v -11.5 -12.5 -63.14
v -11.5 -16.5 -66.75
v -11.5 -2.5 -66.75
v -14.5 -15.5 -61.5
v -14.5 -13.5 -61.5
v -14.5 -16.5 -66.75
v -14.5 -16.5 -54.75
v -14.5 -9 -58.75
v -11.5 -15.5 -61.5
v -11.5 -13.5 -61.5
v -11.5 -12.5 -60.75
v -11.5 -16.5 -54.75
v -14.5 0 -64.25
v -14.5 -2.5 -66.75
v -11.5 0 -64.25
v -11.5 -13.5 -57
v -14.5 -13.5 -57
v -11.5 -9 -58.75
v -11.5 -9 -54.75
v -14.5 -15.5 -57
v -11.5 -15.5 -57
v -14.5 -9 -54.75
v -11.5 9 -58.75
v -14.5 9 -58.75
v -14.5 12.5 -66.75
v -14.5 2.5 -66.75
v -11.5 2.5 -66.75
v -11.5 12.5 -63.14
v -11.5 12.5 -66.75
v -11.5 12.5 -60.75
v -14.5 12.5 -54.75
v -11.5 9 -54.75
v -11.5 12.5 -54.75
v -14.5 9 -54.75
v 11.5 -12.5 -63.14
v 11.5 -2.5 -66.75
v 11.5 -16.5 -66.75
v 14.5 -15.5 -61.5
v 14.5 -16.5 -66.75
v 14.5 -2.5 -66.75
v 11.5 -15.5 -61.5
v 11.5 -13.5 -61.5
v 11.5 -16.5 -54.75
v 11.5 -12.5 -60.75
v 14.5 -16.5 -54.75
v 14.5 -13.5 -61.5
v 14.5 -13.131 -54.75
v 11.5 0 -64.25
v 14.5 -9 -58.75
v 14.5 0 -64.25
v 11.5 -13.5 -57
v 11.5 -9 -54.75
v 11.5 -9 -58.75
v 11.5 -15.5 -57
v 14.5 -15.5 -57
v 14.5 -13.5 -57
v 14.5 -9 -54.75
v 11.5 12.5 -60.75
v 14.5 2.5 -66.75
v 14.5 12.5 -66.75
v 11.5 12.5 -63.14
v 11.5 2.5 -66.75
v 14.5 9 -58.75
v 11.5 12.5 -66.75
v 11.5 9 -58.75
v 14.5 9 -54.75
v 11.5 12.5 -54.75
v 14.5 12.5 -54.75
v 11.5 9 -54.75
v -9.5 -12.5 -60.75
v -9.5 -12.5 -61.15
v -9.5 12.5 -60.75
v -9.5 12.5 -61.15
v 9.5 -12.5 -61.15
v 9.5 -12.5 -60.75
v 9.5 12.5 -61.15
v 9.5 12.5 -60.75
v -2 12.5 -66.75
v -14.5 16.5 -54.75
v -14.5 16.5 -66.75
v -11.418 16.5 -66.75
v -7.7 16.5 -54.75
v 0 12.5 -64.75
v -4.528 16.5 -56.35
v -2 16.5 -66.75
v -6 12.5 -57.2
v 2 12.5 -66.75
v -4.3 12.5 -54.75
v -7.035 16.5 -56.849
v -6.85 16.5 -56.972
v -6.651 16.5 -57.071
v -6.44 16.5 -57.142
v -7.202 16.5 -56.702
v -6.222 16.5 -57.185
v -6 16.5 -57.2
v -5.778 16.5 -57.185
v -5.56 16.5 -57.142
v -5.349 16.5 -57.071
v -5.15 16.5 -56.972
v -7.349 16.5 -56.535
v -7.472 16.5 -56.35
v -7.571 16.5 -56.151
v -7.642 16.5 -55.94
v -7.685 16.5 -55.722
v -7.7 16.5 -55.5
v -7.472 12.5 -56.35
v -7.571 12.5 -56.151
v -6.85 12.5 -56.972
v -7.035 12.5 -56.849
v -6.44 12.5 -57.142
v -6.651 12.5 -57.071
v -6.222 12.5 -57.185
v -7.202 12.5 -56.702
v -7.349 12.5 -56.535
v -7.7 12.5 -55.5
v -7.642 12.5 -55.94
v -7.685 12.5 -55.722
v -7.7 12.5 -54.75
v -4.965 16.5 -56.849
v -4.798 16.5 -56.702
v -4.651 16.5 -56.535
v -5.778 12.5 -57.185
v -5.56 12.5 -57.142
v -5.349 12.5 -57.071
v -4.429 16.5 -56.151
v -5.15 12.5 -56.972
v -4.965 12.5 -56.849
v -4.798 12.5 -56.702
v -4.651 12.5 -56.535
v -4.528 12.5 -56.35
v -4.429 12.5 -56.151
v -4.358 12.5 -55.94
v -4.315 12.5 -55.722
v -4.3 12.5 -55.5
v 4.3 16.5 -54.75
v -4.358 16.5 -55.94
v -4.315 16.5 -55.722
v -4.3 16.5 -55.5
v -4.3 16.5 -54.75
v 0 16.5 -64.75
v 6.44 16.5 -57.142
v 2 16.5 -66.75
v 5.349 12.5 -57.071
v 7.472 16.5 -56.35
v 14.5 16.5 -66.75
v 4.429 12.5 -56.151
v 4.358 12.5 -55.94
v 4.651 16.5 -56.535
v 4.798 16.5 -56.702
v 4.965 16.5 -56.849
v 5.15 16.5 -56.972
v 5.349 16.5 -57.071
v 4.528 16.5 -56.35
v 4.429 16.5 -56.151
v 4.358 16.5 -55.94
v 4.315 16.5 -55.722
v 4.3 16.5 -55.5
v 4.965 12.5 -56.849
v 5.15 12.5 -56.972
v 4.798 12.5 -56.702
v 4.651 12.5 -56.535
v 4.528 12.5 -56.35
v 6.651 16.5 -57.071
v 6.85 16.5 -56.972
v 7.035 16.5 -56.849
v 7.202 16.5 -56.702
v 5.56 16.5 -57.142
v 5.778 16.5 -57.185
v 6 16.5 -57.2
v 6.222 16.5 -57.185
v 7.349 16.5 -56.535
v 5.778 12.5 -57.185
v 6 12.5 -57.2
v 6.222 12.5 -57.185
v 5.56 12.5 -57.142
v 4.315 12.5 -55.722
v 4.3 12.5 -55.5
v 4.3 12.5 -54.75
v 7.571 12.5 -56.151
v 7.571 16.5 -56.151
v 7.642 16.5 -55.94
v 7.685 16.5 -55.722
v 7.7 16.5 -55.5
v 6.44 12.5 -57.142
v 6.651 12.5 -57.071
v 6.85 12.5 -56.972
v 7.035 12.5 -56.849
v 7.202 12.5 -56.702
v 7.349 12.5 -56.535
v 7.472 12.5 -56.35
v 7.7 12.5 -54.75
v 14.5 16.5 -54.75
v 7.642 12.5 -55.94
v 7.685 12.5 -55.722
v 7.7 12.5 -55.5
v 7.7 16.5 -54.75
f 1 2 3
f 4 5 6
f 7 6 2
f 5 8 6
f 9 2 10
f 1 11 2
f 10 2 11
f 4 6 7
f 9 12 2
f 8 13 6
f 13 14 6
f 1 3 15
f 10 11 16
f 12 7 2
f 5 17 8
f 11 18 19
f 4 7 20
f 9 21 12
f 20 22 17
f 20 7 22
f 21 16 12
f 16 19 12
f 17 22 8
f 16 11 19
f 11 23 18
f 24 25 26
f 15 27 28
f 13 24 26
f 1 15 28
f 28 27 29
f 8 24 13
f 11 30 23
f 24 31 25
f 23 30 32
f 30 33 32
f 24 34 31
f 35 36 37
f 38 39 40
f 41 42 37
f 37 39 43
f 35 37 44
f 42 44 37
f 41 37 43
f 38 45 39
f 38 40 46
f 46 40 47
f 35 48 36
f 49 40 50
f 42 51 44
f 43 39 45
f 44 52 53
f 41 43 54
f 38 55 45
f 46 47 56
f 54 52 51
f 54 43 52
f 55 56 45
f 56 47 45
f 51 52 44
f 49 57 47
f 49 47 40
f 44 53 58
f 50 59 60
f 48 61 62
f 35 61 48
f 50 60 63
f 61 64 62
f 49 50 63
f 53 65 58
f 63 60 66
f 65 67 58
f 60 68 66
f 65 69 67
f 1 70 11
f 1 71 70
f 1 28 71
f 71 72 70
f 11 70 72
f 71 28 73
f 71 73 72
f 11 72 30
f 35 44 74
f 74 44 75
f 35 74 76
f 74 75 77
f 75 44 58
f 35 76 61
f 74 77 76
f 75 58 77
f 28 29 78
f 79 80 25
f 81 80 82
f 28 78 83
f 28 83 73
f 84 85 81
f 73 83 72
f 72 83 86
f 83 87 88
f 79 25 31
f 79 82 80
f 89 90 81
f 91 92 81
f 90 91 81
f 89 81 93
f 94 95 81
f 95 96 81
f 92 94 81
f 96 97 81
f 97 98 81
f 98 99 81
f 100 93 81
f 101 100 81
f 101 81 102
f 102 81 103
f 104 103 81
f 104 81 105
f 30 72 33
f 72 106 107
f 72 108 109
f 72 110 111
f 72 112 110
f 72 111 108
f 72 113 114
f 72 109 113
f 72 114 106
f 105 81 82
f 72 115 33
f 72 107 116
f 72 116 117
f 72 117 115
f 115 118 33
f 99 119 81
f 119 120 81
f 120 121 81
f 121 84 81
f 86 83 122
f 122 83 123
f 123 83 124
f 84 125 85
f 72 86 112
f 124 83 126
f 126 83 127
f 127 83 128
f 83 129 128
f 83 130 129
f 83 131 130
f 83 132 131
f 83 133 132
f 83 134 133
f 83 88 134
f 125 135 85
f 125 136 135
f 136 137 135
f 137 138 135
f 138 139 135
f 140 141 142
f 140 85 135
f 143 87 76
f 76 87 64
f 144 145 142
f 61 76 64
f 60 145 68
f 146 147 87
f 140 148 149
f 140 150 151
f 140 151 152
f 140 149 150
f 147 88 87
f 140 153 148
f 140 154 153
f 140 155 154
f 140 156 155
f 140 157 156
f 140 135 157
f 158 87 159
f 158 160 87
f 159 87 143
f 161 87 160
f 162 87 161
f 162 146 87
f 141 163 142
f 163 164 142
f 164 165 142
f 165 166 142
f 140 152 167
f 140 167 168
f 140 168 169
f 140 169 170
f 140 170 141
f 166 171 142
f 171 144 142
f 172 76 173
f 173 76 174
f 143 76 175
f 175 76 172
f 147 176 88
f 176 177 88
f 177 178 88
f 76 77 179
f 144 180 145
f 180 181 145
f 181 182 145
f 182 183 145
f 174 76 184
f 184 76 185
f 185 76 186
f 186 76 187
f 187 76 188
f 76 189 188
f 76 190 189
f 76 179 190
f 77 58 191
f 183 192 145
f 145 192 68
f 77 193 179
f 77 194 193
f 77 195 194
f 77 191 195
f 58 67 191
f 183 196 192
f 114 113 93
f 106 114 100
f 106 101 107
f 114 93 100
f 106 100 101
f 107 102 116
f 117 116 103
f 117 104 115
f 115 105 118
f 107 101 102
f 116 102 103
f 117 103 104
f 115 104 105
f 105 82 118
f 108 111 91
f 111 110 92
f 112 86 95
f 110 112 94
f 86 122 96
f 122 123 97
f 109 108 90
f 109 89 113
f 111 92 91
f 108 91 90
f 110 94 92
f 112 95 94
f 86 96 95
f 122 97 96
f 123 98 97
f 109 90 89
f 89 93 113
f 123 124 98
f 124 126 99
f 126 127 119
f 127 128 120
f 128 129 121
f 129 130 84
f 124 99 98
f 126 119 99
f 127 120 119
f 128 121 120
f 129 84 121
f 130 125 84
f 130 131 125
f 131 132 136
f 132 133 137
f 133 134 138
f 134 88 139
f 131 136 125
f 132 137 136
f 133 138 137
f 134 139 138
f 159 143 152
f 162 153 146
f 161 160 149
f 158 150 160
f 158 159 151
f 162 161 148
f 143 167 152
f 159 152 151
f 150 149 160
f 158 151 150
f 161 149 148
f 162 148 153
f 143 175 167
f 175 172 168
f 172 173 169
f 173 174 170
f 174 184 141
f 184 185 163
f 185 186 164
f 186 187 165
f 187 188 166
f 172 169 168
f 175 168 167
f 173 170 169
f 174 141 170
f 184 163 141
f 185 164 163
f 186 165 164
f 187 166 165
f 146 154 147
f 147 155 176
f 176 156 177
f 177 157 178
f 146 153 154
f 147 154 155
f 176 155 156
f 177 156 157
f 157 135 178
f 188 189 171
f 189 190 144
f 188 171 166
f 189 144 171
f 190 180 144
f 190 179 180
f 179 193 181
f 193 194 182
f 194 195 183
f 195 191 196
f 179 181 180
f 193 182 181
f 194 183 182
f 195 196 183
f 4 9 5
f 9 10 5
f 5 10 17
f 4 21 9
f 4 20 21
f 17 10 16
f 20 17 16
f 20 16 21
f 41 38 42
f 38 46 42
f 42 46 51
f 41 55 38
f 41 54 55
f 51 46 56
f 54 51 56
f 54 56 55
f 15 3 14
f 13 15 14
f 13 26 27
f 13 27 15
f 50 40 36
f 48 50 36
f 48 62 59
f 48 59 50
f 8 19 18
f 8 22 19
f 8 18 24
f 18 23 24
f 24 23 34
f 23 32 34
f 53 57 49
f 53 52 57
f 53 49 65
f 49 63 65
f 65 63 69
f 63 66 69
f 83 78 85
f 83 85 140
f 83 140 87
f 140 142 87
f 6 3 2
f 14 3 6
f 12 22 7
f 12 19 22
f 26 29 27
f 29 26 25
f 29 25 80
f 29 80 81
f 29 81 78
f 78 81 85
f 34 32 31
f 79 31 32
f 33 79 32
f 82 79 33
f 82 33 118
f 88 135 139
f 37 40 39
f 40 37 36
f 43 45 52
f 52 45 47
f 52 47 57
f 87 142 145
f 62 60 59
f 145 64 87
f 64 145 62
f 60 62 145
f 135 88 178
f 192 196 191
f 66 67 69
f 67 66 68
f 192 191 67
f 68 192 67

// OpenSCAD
// Fit coupon: the solenoid pocket around the ledges, a few grams. Print it first. PETG, upright.
include <../cad/punch_rig_006.scad>
PART = "coupon";
